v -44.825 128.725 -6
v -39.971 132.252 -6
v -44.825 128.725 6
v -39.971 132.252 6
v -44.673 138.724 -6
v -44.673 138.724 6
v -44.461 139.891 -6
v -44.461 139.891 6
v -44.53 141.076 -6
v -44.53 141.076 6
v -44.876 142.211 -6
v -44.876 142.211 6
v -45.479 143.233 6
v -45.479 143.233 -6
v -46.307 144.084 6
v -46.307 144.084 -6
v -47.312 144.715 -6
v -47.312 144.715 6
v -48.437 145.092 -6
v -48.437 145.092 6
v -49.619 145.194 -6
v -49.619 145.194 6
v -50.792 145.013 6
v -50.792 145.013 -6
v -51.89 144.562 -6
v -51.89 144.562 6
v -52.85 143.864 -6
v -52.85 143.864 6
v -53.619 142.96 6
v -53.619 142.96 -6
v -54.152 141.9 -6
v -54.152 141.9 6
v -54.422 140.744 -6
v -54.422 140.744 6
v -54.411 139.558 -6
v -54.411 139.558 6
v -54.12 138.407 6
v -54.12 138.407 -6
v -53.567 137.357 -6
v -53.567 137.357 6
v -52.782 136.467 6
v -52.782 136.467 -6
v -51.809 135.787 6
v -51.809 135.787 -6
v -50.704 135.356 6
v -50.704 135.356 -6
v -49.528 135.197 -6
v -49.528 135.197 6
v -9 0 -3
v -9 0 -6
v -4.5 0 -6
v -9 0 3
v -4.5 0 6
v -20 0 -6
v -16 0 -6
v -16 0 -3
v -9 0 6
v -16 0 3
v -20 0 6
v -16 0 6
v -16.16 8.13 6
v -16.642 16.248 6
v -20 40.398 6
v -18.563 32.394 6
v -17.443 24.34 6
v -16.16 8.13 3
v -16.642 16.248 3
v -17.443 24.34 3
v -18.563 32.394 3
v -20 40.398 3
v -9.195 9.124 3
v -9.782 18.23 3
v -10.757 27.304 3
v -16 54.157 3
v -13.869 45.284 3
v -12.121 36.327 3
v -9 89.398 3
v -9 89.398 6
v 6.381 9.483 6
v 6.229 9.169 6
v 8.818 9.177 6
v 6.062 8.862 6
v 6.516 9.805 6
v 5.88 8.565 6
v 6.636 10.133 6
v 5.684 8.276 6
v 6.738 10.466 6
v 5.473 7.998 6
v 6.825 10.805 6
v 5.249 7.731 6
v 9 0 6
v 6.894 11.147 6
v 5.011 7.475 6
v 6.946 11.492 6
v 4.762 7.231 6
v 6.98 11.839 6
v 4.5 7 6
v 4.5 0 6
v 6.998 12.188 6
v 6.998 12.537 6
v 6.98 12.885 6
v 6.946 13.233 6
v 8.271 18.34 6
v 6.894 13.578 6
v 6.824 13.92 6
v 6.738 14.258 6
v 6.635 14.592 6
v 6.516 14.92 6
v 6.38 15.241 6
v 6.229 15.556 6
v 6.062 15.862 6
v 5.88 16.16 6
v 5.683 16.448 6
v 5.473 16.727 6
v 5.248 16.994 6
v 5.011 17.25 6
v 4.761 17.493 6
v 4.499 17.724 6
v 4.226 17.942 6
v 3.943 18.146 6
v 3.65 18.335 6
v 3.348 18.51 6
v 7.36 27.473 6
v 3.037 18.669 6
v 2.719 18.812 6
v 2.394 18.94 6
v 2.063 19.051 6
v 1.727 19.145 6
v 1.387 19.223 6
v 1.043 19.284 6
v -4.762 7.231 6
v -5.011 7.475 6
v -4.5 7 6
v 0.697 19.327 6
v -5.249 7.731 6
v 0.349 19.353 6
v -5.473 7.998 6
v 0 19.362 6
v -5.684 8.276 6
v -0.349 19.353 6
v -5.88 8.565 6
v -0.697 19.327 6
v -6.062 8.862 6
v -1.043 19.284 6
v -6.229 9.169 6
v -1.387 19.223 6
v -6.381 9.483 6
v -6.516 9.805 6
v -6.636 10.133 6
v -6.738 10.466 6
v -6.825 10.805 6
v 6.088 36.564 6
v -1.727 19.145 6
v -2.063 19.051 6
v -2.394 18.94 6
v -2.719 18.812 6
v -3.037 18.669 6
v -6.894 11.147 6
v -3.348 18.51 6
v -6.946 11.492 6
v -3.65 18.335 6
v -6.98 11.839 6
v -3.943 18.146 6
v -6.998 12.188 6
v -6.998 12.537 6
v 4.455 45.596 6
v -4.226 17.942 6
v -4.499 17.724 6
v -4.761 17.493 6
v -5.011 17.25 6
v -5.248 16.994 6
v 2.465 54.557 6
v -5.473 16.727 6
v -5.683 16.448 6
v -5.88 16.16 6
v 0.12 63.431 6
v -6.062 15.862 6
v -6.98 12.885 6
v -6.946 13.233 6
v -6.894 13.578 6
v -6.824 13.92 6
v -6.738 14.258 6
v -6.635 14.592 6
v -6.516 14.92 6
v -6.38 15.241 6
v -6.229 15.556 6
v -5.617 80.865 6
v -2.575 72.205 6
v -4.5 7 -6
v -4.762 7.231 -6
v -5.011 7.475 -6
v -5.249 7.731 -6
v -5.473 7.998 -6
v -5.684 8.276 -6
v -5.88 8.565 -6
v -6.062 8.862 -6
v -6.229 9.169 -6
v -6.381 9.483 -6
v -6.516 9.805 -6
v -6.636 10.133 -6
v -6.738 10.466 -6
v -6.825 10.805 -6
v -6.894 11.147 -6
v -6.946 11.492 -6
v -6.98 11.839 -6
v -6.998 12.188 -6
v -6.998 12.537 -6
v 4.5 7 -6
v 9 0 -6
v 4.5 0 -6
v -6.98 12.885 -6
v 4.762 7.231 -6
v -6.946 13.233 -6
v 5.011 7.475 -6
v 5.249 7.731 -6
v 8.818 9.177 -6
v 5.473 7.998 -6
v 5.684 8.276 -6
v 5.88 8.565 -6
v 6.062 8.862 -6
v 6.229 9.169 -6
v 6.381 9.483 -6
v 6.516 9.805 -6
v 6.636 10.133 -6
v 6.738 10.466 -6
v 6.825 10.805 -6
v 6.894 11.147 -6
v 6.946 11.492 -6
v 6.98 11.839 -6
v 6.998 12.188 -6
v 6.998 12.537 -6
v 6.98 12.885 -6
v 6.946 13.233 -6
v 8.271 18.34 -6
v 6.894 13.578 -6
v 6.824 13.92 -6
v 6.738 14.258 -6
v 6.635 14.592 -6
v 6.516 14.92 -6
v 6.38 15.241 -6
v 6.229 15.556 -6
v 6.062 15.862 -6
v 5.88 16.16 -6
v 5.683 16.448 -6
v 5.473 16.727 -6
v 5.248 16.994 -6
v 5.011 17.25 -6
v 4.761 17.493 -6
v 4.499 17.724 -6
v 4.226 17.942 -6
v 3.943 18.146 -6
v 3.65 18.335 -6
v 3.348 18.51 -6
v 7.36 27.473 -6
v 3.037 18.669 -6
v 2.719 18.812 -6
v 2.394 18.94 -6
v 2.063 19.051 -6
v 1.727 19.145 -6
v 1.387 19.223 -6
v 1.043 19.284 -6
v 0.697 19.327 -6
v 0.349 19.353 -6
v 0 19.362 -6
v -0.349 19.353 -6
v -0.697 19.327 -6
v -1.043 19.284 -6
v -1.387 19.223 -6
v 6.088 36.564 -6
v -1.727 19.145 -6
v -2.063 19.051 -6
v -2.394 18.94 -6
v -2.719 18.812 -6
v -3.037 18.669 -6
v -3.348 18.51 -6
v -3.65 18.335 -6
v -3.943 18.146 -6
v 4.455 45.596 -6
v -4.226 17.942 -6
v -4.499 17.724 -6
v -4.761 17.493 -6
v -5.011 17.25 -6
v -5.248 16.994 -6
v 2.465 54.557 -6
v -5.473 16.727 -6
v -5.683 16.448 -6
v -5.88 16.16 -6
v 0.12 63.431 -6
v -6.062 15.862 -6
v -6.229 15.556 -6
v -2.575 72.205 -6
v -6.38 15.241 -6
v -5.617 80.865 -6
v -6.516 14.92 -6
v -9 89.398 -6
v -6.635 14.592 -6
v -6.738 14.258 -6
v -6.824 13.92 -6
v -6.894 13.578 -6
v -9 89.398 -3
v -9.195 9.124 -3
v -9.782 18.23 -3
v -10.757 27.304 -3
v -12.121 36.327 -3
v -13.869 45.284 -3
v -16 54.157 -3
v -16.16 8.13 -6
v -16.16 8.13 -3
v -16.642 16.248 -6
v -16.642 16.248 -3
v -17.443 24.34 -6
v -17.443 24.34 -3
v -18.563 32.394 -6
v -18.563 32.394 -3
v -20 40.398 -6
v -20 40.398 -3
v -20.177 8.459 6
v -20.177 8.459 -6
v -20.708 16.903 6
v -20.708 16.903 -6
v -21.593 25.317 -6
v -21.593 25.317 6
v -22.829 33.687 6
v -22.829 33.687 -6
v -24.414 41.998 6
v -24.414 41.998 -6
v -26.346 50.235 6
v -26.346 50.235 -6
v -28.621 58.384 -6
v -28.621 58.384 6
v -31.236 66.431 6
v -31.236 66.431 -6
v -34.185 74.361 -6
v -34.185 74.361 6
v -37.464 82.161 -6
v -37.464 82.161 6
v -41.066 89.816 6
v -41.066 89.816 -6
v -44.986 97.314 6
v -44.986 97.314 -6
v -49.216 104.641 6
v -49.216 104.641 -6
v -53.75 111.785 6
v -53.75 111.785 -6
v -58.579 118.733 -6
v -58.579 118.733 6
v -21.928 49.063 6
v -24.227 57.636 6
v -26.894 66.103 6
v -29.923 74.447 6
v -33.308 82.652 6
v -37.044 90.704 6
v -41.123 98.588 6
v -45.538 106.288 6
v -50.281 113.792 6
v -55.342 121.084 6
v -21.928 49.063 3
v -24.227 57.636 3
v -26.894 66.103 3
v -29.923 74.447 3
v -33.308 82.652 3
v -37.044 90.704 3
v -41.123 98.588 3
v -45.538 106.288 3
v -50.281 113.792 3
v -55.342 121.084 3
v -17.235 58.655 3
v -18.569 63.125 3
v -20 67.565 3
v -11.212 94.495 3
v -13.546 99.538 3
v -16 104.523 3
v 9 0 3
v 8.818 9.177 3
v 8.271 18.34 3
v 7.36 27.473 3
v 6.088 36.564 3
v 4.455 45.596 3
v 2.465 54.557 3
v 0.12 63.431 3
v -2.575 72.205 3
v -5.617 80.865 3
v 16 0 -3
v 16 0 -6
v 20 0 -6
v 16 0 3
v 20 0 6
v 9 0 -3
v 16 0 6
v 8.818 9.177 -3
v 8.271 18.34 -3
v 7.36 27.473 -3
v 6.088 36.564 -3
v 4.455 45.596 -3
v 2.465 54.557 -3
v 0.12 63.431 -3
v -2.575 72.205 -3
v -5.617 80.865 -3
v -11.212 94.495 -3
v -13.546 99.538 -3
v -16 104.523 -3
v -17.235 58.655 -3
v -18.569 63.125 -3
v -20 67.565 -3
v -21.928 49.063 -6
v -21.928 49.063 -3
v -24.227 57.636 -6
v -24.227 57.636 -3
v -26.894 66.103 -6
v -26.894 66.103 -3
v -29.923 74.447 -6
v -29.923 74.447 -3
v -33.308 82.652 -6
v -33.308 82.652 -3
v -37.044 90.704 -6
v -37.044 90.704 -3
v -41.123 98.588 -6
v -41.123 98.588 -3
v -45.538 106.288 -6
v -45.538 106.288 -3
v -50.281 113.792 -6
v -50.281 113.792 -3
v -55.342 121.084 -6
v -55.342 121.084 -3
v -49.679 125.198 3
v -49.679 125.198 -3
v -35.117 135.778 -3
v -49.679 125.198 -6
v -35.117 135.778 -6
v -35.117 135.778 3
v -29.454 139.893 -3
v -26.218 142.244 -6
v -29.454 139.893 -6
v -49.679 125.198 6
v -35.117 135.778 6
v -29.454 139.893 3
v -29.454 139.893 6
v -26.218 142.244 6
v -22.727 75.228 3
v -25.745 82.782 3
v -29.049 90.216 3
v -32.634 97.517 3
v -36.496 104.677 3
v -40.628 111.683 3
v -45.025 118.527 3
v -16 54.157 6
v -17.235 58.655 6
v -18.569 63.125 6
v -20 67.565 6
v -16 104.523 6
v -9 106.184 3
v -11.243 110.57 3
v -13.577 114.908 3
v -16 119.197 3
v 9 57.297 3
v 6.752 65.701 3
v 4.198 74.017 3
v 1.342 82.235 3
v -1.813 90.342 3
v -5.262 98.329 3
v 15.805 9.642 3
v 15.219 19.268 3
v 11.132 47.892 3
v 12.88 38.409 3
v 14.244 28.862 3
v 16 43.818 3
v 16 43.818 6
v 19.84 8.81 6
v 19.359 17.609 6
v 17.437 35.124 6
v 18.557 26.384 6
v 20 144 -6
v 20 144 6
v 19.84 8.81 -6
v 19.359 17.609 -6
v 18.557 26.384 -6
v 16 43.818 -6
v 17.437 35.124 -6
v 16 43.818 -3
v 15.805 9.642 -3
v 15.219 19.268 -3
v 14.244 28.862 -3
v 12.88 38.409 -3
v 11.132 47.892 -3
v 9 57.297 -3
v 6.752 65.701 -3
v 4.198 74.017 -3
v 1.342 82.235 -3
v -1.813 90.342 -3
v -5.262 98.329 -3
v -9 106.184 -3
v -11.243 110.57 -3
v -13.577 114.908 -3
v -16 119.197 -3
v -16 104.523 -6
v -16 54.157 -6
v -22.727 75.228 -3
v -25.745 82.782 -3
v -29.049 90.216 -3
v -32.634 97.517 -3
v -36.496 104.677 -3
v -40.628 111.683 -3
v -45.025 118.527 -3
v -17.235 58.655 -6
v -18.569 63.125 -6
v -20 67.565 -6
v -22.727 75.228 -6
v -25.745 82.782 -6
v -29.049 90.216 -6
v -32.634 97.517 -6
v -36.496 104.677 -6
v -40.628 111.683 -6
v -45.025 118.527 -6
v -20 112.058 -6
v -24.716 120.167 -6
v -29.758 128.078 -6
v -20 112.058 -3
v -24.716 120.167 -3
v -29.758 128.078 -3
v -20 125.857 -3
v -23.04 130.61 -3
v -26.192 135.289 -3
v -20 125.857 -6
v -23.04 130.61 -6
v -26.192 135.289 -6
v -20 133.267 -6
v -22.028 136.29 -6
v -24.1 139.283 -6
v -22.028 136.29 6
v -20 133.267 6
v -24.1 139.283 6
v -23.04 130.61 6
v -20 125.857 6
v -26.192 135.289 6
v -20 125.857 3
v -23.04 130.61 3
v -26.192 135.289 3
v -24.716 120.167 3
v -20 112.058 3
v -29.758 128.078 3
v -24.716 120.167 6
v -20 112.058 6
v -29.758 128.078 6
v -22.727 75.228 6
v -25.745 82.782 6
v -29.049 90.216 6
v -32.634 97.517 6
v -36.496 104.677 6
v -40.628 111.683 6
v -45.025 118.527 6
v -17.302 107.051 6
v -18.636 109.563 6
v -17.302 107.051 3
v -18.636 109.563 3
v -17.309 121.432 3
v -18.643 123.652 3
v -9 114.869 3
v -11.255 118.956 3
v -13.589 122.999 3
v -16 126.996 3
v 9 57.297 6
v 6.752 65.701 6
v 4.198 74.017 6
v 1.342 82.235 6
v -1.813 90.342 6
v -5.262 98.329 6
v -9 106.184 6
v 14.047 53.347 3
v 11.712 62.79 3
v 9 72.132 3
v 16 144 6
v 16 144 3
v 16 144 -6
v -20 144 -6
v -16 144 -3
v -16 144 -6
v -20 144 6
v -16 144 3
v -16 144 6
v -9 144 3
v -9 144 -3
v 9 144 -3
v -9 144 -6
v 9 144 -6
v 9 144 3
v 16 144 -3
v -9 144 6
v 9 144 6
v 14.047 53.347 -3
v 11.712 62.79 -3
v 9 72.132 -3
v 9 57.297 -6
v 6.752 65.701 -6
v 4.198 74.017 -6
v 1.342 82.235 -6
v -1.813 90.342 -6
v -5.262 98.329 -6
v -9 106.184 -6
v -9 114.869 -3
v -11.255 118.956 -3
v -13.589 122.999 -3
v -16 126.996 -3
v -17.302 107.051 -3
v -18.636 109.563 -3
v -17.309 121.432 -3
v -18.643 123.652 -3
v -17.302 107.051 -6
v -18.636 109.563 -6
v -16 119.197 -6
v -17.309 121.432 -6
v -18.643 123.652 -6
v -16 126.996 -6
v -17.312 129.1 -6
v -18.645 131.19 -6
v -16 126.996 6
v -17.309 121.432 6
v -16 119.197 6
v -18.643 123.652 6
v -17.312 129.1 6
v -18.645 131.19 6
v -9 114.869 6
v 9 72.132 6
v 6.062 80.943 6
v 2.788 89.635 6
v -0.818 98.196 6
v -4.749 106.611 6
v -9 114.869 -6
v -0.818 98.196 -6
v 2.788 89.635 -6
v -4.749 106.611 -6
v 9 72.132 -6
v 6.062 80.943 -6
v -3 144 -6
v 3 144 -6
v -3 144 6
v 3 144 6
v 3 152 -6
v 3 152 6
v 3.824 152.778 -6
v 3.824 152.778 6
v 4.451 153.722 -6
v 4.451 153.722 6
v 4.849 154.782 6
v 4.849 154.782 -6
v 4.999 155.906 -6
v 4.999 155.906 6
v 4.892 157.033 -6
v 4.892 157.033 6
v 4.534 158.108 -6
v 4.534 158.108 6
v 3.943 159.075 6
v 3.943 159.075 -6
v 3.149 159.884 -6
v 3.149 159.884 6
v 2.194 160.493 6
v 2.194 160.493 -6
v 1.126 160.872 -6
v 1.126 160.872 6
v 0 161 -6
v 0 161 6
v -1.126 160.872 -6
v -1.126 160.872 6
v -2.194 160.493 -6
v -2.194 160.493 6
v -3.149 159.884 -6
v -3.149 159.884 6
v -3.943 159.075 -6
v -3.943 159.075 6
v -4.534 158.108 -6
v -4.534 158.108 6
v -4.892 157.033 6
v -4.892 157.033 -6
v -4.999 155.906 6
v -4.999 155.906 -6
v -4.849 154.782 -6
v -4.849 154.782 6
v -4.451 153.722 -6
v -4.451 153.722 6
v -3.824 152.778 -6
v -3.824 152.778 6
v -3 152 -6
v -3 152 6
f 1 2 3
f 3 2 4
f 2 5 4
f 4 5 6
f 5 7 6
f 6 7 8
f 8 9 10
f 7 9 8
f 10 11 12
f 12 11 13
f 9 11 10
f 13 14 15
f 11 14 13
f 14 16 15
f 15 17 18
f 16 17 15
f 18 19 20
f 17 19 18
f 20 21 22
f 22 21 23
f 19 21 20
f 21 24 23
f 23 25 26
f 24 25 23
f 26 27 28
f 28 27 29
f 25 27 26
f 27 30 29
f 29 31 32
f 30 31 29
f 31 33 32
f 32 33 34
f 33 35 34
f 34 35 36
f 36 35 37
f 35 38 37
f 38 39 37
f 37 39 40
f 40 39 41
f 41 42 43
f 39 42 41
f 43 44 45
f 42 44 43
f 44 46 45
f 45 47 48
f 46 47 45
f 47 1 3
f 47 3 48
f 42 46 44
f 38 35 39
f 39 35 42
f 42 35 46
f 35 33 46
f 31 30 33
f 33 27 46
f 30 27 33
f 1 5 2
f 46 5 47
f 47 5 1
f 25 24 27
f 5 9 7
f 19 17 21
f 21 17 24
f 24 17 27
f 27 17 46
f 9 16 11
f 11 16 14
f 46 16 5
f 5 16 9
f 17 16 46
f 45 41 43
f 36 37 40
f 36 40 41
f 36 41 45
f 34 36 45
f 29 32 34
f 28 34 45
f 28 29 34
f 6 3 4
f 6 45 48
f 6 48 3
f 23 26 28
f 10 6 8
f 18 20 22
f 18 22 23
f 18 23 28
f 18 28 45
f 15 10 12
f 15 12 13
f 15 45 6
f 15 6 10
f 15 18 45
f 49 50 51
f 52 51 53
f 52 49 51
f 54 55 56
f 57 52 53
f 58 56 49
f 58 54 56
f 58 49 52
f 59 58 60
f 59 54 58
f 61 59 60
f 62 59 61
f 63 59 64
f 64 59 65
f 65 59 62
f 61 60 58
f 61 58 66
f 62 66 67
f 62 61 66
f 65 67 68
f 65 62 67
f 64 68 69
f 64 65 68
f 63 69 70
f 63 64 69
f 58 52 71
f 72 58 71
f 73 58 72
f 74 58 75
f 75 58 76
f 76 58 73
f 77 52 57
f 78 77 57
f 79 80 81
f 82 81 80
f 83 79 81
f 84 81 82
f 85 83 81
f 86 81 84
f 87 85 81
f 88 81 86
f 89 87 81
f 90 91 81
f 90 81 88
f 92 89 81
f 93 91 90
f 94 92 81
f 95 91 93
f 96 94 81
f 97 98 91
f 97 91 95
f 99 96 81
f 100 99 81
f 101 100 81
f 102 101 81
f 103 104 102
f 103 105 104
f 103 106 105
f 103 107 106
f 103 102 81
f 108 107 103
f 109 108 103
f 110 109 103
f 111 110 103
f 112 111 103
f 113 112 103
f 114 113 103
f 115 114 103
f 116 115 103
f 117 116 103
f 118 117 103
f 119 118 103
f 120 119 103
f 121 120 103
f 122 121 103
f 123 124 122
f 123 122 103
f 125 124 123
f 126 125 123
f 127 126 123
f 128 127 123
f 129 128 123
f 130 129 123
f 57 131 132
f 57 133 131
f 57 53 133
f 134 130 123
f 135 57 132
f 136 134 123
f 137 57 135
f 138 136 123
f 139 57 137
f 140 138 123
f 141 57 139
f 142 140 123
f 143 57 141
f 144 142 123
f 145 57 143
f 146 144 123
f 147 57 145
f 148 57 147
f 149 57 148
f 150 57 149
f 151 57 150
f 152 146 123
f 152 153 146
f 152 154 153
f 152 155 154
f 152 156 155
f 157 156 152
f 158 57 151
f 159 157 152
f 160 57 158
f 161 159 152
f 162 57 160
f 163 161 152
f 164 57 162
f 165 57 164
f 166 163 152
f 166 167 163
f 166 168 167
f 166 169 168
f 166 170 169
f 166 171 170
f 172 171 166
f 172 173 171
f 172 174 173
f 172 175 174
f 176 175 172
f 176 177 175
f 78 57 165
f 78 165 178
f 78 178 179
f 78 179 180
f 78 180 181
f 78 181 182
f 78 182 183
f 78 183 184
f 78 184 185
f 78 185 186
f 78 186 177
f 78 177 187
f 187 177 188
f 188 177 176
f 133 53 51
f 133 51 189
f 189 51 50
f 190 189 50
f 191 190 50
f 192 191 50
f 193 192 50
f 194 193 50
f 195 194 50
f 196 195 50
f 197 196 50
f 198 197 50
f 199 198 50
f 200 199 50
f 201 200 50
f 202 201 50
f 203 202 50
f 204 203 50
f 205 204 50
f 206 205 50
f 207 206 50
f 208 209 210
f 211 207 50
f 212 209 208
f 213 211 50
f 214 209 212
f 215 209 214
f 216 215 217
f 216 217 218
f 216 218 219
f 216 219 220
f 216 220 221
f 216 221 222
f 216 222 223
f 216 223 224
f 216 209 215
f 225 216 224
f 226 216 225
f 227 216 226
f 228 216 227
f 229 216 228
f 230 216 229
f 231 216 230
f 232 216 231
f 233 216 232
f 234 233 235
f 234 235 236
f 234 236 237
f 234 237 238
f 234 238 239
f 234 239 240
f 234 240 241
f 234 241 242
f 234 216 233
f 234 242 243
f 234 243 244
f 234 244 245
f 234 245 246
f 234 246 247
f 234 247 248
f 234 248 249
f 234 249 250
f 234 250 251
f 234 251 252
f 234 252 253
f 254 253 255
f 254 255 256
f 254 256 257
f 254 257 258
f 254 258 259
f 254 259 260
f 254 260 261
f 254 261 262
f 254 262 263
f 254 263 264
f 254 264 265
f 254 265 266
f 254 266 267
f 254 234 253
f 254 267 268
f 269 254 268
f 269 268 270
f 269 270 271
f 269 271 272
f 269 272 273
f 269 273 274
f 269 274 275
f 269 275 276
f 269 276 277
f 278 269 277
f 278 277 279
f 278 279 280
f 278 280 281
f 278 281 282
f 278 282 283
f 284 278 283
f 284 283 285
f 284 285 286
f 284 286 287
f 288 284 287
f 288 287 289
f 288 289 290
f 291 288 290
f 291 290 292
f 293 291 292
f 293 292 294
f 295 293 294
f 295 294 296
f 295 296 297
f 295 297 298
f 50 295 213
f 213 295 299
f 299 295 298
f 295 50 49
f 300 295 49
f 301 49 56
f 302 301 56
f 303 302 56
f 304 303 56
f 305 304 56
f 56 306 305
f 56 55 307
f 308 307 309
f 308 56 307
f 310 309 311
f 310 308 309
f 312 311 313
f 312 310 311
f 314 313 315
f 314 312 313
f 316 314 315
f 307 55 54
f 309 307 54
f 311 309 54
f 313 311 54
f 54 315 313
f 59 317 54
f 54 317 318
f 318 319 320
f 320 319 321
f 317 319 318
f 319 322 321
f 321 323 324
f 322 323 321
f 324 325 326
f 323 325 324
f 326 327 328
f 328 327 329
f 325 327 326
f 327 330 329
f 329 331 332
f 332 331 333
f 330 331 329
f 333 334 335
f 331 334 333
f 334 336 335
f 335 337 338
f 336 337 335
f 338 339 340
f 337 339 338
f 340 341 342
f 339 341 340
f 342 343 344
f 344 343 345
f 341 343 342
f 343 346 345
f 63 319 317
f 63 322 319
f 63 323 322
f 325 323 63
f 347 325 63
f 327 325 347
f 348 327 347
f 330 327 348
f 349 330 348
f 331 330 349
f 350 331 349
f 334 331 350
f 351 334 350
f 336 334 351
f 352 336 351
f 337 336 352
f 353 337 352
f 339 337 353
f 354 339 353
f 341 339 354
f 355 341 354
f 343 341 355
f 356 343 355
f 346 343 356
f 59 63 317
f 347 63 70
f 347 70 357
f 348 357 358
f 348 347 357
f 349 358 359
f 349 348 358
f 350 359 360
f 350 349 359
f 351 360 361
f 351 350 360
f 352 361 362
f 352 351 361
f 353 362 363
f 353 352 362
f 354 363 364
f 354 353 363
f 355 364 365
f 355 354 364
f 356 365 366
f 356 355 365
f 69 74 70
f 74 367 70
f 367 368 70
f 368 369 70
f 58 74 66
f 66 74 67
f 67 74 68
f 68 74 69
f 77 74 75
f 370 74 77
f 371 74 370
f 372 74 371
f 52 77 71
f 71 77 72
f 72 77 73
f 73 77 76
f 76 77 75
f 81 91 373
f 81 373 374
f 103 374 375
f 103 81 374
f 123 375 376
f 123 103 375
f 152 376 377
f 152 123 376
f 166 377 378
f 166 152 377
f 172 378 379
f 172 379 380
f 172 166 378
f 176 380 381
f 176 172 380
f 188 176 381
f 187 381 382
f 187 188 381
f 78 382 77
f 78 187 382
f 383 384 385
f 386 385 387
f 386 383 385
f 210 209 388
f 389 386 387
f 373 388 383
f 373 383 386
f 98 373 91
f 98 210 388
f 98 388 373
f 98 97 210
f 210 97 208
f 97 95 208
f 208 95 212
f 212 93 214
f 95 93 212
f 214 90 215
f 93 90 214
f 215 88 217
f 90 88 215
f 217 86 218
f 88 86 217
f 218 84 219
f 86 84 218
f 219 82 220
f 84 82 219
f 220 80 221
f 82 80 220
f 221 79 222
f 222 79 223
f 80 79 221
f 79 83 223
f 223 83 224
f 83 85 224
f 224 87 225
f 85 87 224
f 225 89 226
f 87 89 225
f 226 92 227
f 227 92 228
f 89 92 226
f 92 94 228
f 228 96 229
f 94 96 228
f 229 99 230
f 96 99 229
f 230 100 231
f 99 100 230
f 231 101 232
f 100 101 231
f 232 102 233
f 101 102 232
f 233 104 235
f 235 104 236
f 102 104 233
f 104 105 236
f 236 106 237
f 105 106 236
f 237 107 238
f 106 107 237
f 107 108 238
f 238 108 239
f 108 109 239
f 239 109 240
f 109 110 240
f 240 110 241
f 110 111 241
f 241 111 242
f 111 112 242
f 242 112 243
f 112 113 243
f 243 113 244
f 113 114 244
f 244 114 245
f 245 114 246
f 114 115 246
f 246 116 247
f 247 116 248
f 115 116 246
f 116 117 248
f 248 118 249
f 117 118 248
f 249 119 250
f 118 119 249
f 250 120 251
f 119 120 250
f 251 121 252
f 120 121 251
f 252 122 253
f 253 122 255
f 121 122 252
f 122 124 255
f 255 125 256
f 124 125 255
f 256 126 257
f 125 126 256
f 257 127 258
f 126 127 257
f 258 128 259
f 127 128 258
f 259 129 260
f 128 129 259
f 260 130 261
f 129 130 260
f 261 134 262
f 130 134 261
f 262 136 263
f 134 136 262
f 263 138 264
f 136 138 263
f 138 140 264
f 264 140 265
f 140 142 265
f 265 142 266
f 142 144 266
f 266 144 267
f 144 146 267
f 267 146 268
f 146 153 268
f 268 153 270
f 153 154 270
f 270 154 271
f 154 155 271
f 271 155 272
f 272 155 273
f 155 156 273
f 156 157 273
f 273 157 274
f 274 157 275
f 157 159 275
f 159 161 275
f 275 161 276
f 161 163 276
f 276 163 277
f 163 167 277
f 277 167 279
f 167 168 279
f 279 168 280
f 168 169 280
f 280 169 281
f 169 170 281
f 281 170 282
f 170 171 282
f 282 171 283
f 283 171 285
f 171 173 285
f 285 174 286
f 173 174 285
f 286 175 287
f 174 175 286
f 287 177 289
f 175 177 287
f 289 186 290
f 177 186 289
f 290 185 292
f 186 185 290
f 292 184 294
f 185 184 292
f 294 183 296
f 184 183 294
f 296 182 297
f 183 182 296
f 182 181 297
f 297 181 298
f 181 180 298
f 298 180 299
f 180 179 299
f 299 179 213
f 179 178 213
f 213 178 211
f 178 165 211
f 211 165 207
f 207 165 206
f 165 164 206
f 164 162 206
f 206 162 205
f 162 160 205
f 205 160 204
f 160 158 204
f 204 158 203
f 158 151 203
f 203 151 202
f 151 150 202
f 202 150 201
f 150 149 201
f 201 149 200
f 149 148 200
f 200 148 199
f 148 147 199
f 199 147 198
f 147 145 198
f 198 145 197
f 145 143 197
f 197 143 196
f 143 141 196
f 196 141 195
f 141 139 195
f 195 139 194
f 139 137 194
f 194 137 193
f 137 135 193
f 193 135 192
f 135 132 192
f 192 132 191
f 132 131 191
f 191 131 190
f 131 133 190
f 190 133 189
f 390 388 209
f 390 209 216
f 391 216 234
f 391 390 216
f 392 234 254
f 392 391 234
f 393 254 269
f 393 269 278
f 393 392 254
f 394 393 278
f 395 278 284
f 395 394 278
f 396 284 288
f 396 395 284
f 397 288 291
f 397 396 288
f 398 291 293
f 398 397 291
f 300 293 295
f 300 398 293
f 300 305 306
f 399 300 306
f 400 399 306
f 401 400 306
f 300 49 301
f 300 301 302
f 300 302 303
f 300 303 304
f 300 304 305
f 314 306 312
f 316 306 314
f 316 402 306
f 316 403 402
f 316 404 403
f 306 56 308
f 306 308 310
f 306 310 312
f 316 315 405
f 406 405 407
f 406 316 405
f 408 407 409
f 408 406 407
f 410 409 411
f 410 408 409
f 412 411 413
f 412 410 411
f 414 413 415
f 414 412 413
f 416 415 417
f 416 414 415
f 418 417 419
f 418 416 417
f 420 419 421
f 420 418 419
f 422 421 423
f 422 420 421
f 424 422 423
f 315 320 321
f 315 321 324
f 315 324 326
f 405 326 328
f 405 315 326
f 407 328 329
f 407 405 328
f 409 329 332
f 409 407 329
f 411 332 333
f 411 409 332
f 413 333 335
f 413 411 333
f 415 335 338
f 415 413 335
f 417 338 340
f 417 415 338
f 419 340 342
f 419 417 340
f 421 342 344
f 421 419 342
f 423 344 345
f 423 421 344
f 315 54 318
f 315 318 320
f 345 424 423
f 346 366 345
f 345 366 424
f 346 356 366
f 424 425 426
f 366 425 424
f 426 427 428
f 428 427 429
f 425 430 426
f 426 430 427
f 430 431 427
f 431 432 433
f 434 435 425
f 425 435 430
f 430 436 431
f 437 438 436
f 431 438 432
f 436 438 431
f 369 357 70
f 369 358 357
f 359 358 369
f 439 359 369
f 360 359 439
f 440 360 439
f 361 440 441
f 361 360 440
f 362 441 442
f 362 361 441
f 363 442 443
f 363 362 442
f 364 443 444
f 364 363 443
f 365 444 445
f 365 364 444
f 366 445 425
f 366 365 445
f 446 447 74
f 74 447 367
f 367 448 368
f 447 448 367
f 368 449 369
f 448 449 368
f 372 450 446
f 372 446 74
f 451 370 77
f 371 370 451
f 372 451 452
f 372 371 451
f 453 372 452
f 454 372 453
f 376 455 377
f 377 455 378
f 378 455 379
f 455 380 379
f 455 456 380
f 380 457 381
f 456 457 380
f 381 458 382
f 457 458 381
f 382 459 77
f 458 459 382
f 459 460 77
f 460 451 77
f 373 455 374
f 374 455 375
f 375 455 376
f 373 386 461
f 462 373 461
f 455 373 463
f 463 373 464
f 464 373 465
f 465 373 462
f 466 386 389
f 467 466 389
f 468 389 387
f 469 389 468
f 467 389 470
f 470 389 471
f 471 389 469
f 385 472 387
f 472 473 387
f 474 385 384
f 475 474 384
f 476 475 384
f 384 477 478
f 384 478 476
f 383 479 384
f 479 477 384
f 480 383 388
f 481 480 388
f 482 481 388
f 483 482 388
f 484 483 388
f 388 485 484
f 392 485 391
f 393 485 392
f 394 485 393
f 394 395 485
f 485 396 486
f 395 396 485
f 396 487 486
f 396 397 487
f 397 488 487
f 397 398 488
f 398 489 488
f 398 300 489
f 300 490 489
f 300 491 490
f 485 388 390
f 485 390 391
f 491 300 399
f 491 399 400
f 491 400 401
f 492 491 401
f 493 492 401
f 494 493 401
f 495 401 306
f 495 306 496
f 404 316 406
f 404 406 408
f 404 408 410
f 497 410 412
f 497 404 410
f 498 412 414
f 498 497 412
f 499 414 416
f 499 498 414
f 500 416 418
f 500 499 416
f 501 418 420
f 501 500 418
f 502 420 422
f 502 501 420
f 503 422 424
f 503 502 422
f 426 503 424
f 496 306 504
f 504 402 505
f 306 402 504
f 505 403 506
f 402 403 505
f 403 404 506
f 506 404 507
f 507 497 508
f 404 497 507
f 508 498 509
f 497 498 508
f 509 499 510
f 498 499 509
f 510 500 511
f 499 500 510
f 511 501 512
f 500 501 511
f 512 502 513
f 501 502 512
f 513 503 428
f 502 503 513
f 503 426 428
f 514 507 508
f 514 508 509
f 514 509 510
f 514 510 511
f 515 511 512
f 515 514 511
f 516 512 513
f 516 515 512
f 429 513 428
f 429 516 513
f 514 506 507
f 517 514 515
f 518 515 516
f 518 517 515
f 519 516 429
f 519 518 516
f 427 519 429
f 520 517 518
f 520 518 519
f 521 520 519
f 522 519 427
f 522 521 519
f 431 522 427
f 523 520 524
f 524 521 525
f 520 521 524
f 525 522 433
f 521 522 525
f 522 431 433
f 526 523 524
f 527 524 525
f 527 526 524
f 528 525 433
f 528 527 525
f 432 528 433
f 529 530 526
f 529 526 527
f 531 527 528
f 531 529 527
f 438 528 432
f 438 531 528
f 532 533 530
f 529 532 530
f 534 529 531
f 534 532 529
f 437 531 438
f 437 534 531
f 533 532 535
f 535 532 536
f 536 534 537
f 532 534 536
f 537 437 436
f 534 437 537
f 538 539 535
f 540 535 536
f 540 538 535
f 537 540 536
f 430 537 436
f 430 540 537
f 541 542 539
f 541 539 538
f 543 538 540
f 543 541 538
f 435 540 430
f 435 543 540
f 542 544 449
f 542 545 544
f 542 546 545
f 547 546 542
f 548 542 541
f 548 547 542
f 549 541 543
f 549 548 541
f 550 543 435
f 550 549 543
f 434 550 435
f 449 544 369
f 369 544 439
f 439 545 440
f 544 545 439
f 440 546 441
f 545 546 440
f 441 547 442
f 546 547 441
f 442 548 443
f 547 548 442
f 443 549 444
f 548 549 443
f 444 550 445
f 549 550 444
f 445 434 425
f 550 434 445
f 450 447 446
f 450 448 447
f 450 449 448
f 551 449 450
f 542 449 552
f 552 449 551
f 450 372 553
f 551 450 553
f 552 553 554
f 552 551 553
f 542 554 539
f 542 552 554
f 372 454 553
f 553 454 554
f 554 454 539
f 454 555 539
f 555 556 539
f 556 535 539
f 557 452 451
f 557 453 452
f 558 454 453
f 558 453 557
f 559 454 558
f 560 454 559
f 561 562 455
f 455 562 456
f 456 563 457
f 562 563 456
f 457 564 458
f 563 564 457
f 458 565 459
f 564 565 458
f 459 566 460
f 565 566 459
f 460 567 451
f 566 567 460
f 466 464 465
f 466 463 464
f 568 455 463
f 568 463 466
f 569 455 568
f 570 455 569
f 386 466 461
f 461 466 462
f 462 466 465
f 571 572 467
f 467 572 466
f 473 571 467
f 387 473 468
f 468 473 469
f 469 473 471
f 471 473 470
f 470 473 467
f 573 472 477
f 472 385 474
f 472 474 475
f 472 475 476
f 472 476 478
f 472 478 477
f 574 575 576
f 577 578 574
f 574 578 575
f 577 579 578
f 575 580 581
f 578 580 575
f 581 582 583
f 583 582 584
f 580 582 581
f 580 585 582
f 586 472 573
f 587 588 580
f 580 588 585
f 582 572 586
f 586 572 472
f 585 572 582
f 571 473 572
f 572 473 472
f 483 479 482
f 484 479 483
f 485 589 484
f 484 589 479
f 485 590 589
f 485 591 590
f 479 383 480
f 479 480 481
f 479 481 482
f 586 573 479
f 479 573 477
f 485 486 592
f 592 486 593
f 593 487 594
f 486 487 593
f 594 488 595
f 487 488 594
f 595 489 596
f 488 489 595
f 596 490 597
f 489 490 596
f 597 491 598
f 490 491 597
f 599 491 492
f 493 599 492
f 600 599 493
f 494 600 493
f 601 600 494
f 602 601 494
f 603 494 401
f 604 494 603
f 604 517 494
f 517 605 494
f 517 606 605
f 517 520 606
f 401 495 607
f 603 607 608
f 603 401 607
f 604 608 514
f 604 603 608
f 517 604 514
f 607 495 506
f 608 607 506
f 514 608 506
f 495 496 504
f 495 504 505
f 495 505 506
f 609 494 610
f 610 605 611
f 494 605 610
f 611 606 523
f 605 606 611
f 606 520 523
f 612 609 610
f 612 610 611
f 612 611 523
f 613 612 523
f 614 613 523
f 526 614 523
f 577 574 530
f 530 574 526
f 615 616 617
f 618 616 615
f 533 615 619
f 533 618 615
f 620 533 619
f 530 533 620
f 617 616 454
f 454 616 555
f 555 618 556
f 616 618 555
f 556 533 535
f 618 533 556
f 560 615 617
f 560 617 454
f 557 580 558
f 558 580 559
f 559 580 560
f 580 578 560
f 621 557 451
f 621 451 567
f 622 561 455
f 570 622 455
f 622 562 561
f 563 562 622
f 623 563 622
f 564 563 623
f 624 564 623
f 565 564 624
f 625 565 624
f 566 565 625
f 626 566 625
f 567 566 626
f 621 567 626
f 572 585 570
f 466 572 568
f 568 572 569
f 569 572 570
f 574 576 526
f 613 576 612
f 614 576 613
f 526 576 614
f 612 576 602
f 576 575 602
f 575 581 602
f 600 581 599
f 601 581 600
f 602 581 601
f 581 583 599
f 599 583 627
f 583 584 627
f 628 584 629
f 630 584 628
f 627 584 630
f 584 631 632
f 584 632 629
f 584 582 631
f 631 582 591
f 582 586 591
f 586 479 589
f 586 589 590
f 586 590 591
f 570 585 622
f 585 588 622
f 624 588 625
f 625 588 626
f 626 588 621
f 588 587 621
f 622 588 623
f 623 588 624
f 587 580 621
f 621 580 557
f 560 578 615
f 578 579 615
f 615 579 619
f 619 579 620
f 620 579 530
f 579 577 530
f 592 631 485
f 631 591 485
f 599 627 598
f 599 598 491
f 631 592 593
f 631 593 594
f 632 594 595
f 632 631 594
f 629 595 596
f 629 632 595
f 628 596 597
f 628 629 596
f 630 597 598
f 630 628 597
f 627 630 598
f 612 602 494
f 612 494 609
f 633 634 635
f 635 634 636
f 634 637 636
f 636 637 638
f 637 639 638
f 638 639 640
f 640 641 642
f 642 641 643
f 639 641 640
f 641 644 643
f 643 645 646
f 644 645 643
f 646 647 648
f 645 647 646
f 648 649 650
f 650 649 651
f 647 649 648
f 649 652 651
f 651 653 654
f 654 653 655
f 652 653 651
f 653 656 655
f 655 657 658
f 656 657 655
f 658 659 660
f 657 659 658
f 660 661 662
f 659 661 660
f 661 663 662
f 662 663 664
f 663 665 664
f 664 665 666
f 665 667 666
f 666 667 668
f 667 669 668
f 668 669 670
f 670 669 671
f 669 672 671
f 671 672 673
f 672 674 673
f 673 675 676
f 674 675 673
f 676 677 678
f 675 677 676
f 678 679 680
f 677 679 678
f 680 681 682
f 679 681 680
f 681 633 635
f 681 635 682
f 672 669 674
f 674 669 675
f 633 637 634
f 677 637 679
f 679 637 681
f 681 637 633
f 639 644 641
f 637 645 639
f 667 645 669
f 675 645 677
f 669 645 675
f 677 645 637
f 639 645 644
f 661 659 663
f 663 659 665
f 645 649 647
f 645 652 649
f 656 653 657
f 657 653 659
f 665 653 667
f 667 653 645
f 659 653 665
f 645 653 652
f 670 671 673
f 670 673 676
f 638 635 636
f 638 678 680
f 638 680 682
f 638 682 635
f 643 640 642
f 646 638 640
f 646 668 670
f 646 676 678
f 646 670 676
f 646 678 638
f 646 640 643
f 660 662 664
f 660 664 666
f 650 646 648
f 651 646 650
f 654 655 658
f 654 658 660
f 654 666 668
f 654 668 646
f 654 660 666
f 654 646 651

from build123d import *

# Parameters (mm, degrees)
SKETCH004_W       = 7
SKETCH004_H       = 3
SKETCH005_W       = 7
SKETCH005_H       = 3
SKETCH009_W       = 7
SKETCH009_H       = 3
SKETCH010_W       = 7
SKETCH010_H       = 3
POCKET_DEPTH      = 6.001
POCKET_DEPTH_BACK = -6.001
PAD001_DEPTH      = 6
PAD002_DEPTH      = 6


with BuildPart() as body:
    # AdditivePipe: sweep along a path in Sketch002
    with BuildLine(Plane.XY) as additivepipe_path:
        ThreePointArc((0, 0), (-10.865453, 68.601773), (-42.398227, 130.488326))
    # Sketch → AdditivePipe (sweep)
    with BuildSketch(Plane.XZ):
        Polygon((-20, 6), (-20, -6), (-16, -6), (-16, -3), (-9, -3), (-9, -6), (9, -6), (9, -3), (16, -3), (16, -6), (20, -6), (20, 6), (16, 6), (16, 3), (9, 3), (9, 6), (-9, 6), (-9, 3), (-16, 3), (-16, 6), align=None)
    sweep(path=additivepipe_path.line)

    # AdditivePipe001: sweep along a path in Sketch001
    with BuildLine(Plane.XY) as additivepipe001_path:
        Line((0, 0), (0, 144))
    # Sketch → AdditivePipe001 (sweep)
    with BuildSketch(Plane.XZ):
        Polygon((-20, 6), (-20, -6), (-16, -6), (-16, -3), (-9, -3), (-9, -6), (9, -6), (9, -3), (16, -3), (16, -6), (20, -6), (20, 6), (16, 6), (16, 3), (9, 3), (9, 6), (-9, 6), (-9, 3), (-16, 3), (-16, 6), align=None)
    sweep(path=additivepipe001_path.line)

    # SubtractivePipe: sweep along a path in Sketch001
    with BuildLine(Plane.XY) as subtractivepipe_path:
        Line((0, 0), (0, 144))
    # Sketch004 → SubtractivePipe (sweep, cut)
    with BuildSketch(Plane.XZ):
        with Locations((-12.5, 4.5)):
            Rectangle(SKETCH004_W, SKETCH004_H)
    sweep(path=subtractivepipe_path.line, mode=Mode.SUBTRACT)

    # SubtractivePipe001: sweep along a path in Sketch002
    with BuildLine(Plane.XY) as subtractivepipe001_path:
        ThreePointArc((0, 0), (-10.865453, 68.601773), (-42.398227, 130.488326))
    # Sketch004 → SubtractivePipe001 (sweep, cut)
    with BuildSketch(Plane.XZ):
        with Locations((-12.5, 4.5)):
            Rectangle(SKETCH004_W, SKETCH004_H)
    sweep(path=subtractivepipe001_path.line, mode=Mode.SUBTRACT)

    # SubtractivePipe002: sweep along a path in Sketch002
    with BuildLine(Plane.XY) as subtractivepipe002_path:
        ThreePointArc((0, 0), (-10.865453, 68.601773), (-42.398227, 130.488326))
    # Sketch005 (on Face1 of SubtractivePipe001) → SubtractivePipe002 (sweep, cut)
    with BuildSketch(Plane.XZ):
        with Locations((12.5, 4.5)):
            Rectangle(SKETCH005_W, SKETCH005_H)
    sweep(path=subtractivepipe002_path.line, mode=Mode.SUBTRACT)

    # SubtractivePipe003: sweep along a path in Sketch001
    with BuildLine(Plane.XY) as subtractivepipe003_path:
        Line((0, 0), (0, 144))
    # Sketch005 (on Face1 of SubtractivePipe001) → SubtractivePipe003 (sweep, cut)
    with BuildSketch(Plane.XZ):
        with Locations((12.5, 4.5)):
            Rectangle(SKETCH005_W, SKETCH005_H)
    subtractivepipe003 = sweep(path=subtractivepipe003_path.line, mode=Mode.SUBTRACT)

    # Mirrored: SubtractivePipe003 across XY
    add(subtractivepipe003.mirror(Plane.XY), mode=Mode.SUBTRACT)

    # SubtractivePipe004: sweep along a path in Sketch002
    with BuildLine(Plane.XY) as subtractivepipe004_path:
        ThreePointArc((0, 0), (-10.865453, 68.601773), (-42.398227, 130.488326))
    # Sketch009 → SubtractivePipe004 (sweep, cut)
    with BuildSketch(Plane.XZ):
        with Locations((-12.5, -4.5)):
            Rectangle(SKETCH009_W, SKETCH009_H)
    sweep(path=subtractivepipe004_path.line, mode=Mode.SUBTRACT)

    # SubtractivePipe005: sweep along a path in Sketch001
    with BuildLine(Plane.XY) as subtractivepipe005_path:
        Line((0, 0), (0, 144))
    # Sketch009 → SubtractivePipe005 (sweep, cut)
    with BuildSketch(Plane.XZ):
        with Locations((-12.5, -4.5)):
            Rectangle(SKETCH009_W, SKETCH009_H)
    sweep(path=subtractivepipe005_path.line, mode=Mode.SUBTRACT)

    # SubtractivePipe006: sweep along a path in Sketch002
    with BuildLine(Plane.XY) as subtractivepipe006_path:
        ThreePointArc((0, 0), (-10.865453, 68.601773), (-42.398227, 130.488326))
    # Sketch010 (on Face1 of SubtractivePipe005) → SubtractivePipe006 (sweep, cut)
    with BuildSketch(Plane.XZ):
        with Locations((12.5, -4.5)):
            Rectangle(SKETCH010_W, SKETCH010_H)
    sweep(path=subtractivepipe006_path.line, mode=Mode.SUBTRACT)

    # Sketch013 → Pocket (cut, two sides)
    with BuildSketch(Plane.XY) as pocket_sk:
        with BuildLine():
            Line((-4.5, 0), (4.5, 0))
            Line((4.5, 0), (4.5, 7))
            ThreePointArc((4.5, 7), (0, 19.361903), (-4.5, 7))
            Line((-4.5, 0), (-4.5, 7))
        make_face()
    extrude(amount=-POCKET_DEPTH, mode=Mode.SUBTRACT)
    extrude(pocket_sk.sketch, amount=-POCKET_DEPTH_BACK, mode=Mode.SUBTRACT)


with BuildPart() as body002:
    # Sketch011 → Pad001 (new body, symmetric)
    with BuildSketch(Plane.XY):
        with BuildLine():
            Line((-3, 144), (3, 144))
            Line((3, 144), (3, 152))
            ThreePointArc((3, 152), (0, 161), (-3, 152))
            Line((-3, 144), (-3, 152))
        make_face()
    extrude(amount=PAD001_DEPTH, both=True)


with BuildPart() as body003:
    # Sketch012 → Pad002 (new body, symmetric)
    with BuildSketch(Plane.XY):
        with BuildLine():
            Line((-44.825278, 128.72497), (-39.971176, 132.251682))
            Line((-39.971176, 132.251682), (-44.673458, 138.723818))
            ThreePointArc((-44.673458, 138.723818), (-52.390577, 144.241615), (-49.52756, 135.197106))
            Line((-44.825278, 128.72497), (-49.52756, 135.197106))
        make_face()
    extrude(amount=PAD002_DEPTH, both=True)


solid = Compound([body.part, body002.part, body003.part])
